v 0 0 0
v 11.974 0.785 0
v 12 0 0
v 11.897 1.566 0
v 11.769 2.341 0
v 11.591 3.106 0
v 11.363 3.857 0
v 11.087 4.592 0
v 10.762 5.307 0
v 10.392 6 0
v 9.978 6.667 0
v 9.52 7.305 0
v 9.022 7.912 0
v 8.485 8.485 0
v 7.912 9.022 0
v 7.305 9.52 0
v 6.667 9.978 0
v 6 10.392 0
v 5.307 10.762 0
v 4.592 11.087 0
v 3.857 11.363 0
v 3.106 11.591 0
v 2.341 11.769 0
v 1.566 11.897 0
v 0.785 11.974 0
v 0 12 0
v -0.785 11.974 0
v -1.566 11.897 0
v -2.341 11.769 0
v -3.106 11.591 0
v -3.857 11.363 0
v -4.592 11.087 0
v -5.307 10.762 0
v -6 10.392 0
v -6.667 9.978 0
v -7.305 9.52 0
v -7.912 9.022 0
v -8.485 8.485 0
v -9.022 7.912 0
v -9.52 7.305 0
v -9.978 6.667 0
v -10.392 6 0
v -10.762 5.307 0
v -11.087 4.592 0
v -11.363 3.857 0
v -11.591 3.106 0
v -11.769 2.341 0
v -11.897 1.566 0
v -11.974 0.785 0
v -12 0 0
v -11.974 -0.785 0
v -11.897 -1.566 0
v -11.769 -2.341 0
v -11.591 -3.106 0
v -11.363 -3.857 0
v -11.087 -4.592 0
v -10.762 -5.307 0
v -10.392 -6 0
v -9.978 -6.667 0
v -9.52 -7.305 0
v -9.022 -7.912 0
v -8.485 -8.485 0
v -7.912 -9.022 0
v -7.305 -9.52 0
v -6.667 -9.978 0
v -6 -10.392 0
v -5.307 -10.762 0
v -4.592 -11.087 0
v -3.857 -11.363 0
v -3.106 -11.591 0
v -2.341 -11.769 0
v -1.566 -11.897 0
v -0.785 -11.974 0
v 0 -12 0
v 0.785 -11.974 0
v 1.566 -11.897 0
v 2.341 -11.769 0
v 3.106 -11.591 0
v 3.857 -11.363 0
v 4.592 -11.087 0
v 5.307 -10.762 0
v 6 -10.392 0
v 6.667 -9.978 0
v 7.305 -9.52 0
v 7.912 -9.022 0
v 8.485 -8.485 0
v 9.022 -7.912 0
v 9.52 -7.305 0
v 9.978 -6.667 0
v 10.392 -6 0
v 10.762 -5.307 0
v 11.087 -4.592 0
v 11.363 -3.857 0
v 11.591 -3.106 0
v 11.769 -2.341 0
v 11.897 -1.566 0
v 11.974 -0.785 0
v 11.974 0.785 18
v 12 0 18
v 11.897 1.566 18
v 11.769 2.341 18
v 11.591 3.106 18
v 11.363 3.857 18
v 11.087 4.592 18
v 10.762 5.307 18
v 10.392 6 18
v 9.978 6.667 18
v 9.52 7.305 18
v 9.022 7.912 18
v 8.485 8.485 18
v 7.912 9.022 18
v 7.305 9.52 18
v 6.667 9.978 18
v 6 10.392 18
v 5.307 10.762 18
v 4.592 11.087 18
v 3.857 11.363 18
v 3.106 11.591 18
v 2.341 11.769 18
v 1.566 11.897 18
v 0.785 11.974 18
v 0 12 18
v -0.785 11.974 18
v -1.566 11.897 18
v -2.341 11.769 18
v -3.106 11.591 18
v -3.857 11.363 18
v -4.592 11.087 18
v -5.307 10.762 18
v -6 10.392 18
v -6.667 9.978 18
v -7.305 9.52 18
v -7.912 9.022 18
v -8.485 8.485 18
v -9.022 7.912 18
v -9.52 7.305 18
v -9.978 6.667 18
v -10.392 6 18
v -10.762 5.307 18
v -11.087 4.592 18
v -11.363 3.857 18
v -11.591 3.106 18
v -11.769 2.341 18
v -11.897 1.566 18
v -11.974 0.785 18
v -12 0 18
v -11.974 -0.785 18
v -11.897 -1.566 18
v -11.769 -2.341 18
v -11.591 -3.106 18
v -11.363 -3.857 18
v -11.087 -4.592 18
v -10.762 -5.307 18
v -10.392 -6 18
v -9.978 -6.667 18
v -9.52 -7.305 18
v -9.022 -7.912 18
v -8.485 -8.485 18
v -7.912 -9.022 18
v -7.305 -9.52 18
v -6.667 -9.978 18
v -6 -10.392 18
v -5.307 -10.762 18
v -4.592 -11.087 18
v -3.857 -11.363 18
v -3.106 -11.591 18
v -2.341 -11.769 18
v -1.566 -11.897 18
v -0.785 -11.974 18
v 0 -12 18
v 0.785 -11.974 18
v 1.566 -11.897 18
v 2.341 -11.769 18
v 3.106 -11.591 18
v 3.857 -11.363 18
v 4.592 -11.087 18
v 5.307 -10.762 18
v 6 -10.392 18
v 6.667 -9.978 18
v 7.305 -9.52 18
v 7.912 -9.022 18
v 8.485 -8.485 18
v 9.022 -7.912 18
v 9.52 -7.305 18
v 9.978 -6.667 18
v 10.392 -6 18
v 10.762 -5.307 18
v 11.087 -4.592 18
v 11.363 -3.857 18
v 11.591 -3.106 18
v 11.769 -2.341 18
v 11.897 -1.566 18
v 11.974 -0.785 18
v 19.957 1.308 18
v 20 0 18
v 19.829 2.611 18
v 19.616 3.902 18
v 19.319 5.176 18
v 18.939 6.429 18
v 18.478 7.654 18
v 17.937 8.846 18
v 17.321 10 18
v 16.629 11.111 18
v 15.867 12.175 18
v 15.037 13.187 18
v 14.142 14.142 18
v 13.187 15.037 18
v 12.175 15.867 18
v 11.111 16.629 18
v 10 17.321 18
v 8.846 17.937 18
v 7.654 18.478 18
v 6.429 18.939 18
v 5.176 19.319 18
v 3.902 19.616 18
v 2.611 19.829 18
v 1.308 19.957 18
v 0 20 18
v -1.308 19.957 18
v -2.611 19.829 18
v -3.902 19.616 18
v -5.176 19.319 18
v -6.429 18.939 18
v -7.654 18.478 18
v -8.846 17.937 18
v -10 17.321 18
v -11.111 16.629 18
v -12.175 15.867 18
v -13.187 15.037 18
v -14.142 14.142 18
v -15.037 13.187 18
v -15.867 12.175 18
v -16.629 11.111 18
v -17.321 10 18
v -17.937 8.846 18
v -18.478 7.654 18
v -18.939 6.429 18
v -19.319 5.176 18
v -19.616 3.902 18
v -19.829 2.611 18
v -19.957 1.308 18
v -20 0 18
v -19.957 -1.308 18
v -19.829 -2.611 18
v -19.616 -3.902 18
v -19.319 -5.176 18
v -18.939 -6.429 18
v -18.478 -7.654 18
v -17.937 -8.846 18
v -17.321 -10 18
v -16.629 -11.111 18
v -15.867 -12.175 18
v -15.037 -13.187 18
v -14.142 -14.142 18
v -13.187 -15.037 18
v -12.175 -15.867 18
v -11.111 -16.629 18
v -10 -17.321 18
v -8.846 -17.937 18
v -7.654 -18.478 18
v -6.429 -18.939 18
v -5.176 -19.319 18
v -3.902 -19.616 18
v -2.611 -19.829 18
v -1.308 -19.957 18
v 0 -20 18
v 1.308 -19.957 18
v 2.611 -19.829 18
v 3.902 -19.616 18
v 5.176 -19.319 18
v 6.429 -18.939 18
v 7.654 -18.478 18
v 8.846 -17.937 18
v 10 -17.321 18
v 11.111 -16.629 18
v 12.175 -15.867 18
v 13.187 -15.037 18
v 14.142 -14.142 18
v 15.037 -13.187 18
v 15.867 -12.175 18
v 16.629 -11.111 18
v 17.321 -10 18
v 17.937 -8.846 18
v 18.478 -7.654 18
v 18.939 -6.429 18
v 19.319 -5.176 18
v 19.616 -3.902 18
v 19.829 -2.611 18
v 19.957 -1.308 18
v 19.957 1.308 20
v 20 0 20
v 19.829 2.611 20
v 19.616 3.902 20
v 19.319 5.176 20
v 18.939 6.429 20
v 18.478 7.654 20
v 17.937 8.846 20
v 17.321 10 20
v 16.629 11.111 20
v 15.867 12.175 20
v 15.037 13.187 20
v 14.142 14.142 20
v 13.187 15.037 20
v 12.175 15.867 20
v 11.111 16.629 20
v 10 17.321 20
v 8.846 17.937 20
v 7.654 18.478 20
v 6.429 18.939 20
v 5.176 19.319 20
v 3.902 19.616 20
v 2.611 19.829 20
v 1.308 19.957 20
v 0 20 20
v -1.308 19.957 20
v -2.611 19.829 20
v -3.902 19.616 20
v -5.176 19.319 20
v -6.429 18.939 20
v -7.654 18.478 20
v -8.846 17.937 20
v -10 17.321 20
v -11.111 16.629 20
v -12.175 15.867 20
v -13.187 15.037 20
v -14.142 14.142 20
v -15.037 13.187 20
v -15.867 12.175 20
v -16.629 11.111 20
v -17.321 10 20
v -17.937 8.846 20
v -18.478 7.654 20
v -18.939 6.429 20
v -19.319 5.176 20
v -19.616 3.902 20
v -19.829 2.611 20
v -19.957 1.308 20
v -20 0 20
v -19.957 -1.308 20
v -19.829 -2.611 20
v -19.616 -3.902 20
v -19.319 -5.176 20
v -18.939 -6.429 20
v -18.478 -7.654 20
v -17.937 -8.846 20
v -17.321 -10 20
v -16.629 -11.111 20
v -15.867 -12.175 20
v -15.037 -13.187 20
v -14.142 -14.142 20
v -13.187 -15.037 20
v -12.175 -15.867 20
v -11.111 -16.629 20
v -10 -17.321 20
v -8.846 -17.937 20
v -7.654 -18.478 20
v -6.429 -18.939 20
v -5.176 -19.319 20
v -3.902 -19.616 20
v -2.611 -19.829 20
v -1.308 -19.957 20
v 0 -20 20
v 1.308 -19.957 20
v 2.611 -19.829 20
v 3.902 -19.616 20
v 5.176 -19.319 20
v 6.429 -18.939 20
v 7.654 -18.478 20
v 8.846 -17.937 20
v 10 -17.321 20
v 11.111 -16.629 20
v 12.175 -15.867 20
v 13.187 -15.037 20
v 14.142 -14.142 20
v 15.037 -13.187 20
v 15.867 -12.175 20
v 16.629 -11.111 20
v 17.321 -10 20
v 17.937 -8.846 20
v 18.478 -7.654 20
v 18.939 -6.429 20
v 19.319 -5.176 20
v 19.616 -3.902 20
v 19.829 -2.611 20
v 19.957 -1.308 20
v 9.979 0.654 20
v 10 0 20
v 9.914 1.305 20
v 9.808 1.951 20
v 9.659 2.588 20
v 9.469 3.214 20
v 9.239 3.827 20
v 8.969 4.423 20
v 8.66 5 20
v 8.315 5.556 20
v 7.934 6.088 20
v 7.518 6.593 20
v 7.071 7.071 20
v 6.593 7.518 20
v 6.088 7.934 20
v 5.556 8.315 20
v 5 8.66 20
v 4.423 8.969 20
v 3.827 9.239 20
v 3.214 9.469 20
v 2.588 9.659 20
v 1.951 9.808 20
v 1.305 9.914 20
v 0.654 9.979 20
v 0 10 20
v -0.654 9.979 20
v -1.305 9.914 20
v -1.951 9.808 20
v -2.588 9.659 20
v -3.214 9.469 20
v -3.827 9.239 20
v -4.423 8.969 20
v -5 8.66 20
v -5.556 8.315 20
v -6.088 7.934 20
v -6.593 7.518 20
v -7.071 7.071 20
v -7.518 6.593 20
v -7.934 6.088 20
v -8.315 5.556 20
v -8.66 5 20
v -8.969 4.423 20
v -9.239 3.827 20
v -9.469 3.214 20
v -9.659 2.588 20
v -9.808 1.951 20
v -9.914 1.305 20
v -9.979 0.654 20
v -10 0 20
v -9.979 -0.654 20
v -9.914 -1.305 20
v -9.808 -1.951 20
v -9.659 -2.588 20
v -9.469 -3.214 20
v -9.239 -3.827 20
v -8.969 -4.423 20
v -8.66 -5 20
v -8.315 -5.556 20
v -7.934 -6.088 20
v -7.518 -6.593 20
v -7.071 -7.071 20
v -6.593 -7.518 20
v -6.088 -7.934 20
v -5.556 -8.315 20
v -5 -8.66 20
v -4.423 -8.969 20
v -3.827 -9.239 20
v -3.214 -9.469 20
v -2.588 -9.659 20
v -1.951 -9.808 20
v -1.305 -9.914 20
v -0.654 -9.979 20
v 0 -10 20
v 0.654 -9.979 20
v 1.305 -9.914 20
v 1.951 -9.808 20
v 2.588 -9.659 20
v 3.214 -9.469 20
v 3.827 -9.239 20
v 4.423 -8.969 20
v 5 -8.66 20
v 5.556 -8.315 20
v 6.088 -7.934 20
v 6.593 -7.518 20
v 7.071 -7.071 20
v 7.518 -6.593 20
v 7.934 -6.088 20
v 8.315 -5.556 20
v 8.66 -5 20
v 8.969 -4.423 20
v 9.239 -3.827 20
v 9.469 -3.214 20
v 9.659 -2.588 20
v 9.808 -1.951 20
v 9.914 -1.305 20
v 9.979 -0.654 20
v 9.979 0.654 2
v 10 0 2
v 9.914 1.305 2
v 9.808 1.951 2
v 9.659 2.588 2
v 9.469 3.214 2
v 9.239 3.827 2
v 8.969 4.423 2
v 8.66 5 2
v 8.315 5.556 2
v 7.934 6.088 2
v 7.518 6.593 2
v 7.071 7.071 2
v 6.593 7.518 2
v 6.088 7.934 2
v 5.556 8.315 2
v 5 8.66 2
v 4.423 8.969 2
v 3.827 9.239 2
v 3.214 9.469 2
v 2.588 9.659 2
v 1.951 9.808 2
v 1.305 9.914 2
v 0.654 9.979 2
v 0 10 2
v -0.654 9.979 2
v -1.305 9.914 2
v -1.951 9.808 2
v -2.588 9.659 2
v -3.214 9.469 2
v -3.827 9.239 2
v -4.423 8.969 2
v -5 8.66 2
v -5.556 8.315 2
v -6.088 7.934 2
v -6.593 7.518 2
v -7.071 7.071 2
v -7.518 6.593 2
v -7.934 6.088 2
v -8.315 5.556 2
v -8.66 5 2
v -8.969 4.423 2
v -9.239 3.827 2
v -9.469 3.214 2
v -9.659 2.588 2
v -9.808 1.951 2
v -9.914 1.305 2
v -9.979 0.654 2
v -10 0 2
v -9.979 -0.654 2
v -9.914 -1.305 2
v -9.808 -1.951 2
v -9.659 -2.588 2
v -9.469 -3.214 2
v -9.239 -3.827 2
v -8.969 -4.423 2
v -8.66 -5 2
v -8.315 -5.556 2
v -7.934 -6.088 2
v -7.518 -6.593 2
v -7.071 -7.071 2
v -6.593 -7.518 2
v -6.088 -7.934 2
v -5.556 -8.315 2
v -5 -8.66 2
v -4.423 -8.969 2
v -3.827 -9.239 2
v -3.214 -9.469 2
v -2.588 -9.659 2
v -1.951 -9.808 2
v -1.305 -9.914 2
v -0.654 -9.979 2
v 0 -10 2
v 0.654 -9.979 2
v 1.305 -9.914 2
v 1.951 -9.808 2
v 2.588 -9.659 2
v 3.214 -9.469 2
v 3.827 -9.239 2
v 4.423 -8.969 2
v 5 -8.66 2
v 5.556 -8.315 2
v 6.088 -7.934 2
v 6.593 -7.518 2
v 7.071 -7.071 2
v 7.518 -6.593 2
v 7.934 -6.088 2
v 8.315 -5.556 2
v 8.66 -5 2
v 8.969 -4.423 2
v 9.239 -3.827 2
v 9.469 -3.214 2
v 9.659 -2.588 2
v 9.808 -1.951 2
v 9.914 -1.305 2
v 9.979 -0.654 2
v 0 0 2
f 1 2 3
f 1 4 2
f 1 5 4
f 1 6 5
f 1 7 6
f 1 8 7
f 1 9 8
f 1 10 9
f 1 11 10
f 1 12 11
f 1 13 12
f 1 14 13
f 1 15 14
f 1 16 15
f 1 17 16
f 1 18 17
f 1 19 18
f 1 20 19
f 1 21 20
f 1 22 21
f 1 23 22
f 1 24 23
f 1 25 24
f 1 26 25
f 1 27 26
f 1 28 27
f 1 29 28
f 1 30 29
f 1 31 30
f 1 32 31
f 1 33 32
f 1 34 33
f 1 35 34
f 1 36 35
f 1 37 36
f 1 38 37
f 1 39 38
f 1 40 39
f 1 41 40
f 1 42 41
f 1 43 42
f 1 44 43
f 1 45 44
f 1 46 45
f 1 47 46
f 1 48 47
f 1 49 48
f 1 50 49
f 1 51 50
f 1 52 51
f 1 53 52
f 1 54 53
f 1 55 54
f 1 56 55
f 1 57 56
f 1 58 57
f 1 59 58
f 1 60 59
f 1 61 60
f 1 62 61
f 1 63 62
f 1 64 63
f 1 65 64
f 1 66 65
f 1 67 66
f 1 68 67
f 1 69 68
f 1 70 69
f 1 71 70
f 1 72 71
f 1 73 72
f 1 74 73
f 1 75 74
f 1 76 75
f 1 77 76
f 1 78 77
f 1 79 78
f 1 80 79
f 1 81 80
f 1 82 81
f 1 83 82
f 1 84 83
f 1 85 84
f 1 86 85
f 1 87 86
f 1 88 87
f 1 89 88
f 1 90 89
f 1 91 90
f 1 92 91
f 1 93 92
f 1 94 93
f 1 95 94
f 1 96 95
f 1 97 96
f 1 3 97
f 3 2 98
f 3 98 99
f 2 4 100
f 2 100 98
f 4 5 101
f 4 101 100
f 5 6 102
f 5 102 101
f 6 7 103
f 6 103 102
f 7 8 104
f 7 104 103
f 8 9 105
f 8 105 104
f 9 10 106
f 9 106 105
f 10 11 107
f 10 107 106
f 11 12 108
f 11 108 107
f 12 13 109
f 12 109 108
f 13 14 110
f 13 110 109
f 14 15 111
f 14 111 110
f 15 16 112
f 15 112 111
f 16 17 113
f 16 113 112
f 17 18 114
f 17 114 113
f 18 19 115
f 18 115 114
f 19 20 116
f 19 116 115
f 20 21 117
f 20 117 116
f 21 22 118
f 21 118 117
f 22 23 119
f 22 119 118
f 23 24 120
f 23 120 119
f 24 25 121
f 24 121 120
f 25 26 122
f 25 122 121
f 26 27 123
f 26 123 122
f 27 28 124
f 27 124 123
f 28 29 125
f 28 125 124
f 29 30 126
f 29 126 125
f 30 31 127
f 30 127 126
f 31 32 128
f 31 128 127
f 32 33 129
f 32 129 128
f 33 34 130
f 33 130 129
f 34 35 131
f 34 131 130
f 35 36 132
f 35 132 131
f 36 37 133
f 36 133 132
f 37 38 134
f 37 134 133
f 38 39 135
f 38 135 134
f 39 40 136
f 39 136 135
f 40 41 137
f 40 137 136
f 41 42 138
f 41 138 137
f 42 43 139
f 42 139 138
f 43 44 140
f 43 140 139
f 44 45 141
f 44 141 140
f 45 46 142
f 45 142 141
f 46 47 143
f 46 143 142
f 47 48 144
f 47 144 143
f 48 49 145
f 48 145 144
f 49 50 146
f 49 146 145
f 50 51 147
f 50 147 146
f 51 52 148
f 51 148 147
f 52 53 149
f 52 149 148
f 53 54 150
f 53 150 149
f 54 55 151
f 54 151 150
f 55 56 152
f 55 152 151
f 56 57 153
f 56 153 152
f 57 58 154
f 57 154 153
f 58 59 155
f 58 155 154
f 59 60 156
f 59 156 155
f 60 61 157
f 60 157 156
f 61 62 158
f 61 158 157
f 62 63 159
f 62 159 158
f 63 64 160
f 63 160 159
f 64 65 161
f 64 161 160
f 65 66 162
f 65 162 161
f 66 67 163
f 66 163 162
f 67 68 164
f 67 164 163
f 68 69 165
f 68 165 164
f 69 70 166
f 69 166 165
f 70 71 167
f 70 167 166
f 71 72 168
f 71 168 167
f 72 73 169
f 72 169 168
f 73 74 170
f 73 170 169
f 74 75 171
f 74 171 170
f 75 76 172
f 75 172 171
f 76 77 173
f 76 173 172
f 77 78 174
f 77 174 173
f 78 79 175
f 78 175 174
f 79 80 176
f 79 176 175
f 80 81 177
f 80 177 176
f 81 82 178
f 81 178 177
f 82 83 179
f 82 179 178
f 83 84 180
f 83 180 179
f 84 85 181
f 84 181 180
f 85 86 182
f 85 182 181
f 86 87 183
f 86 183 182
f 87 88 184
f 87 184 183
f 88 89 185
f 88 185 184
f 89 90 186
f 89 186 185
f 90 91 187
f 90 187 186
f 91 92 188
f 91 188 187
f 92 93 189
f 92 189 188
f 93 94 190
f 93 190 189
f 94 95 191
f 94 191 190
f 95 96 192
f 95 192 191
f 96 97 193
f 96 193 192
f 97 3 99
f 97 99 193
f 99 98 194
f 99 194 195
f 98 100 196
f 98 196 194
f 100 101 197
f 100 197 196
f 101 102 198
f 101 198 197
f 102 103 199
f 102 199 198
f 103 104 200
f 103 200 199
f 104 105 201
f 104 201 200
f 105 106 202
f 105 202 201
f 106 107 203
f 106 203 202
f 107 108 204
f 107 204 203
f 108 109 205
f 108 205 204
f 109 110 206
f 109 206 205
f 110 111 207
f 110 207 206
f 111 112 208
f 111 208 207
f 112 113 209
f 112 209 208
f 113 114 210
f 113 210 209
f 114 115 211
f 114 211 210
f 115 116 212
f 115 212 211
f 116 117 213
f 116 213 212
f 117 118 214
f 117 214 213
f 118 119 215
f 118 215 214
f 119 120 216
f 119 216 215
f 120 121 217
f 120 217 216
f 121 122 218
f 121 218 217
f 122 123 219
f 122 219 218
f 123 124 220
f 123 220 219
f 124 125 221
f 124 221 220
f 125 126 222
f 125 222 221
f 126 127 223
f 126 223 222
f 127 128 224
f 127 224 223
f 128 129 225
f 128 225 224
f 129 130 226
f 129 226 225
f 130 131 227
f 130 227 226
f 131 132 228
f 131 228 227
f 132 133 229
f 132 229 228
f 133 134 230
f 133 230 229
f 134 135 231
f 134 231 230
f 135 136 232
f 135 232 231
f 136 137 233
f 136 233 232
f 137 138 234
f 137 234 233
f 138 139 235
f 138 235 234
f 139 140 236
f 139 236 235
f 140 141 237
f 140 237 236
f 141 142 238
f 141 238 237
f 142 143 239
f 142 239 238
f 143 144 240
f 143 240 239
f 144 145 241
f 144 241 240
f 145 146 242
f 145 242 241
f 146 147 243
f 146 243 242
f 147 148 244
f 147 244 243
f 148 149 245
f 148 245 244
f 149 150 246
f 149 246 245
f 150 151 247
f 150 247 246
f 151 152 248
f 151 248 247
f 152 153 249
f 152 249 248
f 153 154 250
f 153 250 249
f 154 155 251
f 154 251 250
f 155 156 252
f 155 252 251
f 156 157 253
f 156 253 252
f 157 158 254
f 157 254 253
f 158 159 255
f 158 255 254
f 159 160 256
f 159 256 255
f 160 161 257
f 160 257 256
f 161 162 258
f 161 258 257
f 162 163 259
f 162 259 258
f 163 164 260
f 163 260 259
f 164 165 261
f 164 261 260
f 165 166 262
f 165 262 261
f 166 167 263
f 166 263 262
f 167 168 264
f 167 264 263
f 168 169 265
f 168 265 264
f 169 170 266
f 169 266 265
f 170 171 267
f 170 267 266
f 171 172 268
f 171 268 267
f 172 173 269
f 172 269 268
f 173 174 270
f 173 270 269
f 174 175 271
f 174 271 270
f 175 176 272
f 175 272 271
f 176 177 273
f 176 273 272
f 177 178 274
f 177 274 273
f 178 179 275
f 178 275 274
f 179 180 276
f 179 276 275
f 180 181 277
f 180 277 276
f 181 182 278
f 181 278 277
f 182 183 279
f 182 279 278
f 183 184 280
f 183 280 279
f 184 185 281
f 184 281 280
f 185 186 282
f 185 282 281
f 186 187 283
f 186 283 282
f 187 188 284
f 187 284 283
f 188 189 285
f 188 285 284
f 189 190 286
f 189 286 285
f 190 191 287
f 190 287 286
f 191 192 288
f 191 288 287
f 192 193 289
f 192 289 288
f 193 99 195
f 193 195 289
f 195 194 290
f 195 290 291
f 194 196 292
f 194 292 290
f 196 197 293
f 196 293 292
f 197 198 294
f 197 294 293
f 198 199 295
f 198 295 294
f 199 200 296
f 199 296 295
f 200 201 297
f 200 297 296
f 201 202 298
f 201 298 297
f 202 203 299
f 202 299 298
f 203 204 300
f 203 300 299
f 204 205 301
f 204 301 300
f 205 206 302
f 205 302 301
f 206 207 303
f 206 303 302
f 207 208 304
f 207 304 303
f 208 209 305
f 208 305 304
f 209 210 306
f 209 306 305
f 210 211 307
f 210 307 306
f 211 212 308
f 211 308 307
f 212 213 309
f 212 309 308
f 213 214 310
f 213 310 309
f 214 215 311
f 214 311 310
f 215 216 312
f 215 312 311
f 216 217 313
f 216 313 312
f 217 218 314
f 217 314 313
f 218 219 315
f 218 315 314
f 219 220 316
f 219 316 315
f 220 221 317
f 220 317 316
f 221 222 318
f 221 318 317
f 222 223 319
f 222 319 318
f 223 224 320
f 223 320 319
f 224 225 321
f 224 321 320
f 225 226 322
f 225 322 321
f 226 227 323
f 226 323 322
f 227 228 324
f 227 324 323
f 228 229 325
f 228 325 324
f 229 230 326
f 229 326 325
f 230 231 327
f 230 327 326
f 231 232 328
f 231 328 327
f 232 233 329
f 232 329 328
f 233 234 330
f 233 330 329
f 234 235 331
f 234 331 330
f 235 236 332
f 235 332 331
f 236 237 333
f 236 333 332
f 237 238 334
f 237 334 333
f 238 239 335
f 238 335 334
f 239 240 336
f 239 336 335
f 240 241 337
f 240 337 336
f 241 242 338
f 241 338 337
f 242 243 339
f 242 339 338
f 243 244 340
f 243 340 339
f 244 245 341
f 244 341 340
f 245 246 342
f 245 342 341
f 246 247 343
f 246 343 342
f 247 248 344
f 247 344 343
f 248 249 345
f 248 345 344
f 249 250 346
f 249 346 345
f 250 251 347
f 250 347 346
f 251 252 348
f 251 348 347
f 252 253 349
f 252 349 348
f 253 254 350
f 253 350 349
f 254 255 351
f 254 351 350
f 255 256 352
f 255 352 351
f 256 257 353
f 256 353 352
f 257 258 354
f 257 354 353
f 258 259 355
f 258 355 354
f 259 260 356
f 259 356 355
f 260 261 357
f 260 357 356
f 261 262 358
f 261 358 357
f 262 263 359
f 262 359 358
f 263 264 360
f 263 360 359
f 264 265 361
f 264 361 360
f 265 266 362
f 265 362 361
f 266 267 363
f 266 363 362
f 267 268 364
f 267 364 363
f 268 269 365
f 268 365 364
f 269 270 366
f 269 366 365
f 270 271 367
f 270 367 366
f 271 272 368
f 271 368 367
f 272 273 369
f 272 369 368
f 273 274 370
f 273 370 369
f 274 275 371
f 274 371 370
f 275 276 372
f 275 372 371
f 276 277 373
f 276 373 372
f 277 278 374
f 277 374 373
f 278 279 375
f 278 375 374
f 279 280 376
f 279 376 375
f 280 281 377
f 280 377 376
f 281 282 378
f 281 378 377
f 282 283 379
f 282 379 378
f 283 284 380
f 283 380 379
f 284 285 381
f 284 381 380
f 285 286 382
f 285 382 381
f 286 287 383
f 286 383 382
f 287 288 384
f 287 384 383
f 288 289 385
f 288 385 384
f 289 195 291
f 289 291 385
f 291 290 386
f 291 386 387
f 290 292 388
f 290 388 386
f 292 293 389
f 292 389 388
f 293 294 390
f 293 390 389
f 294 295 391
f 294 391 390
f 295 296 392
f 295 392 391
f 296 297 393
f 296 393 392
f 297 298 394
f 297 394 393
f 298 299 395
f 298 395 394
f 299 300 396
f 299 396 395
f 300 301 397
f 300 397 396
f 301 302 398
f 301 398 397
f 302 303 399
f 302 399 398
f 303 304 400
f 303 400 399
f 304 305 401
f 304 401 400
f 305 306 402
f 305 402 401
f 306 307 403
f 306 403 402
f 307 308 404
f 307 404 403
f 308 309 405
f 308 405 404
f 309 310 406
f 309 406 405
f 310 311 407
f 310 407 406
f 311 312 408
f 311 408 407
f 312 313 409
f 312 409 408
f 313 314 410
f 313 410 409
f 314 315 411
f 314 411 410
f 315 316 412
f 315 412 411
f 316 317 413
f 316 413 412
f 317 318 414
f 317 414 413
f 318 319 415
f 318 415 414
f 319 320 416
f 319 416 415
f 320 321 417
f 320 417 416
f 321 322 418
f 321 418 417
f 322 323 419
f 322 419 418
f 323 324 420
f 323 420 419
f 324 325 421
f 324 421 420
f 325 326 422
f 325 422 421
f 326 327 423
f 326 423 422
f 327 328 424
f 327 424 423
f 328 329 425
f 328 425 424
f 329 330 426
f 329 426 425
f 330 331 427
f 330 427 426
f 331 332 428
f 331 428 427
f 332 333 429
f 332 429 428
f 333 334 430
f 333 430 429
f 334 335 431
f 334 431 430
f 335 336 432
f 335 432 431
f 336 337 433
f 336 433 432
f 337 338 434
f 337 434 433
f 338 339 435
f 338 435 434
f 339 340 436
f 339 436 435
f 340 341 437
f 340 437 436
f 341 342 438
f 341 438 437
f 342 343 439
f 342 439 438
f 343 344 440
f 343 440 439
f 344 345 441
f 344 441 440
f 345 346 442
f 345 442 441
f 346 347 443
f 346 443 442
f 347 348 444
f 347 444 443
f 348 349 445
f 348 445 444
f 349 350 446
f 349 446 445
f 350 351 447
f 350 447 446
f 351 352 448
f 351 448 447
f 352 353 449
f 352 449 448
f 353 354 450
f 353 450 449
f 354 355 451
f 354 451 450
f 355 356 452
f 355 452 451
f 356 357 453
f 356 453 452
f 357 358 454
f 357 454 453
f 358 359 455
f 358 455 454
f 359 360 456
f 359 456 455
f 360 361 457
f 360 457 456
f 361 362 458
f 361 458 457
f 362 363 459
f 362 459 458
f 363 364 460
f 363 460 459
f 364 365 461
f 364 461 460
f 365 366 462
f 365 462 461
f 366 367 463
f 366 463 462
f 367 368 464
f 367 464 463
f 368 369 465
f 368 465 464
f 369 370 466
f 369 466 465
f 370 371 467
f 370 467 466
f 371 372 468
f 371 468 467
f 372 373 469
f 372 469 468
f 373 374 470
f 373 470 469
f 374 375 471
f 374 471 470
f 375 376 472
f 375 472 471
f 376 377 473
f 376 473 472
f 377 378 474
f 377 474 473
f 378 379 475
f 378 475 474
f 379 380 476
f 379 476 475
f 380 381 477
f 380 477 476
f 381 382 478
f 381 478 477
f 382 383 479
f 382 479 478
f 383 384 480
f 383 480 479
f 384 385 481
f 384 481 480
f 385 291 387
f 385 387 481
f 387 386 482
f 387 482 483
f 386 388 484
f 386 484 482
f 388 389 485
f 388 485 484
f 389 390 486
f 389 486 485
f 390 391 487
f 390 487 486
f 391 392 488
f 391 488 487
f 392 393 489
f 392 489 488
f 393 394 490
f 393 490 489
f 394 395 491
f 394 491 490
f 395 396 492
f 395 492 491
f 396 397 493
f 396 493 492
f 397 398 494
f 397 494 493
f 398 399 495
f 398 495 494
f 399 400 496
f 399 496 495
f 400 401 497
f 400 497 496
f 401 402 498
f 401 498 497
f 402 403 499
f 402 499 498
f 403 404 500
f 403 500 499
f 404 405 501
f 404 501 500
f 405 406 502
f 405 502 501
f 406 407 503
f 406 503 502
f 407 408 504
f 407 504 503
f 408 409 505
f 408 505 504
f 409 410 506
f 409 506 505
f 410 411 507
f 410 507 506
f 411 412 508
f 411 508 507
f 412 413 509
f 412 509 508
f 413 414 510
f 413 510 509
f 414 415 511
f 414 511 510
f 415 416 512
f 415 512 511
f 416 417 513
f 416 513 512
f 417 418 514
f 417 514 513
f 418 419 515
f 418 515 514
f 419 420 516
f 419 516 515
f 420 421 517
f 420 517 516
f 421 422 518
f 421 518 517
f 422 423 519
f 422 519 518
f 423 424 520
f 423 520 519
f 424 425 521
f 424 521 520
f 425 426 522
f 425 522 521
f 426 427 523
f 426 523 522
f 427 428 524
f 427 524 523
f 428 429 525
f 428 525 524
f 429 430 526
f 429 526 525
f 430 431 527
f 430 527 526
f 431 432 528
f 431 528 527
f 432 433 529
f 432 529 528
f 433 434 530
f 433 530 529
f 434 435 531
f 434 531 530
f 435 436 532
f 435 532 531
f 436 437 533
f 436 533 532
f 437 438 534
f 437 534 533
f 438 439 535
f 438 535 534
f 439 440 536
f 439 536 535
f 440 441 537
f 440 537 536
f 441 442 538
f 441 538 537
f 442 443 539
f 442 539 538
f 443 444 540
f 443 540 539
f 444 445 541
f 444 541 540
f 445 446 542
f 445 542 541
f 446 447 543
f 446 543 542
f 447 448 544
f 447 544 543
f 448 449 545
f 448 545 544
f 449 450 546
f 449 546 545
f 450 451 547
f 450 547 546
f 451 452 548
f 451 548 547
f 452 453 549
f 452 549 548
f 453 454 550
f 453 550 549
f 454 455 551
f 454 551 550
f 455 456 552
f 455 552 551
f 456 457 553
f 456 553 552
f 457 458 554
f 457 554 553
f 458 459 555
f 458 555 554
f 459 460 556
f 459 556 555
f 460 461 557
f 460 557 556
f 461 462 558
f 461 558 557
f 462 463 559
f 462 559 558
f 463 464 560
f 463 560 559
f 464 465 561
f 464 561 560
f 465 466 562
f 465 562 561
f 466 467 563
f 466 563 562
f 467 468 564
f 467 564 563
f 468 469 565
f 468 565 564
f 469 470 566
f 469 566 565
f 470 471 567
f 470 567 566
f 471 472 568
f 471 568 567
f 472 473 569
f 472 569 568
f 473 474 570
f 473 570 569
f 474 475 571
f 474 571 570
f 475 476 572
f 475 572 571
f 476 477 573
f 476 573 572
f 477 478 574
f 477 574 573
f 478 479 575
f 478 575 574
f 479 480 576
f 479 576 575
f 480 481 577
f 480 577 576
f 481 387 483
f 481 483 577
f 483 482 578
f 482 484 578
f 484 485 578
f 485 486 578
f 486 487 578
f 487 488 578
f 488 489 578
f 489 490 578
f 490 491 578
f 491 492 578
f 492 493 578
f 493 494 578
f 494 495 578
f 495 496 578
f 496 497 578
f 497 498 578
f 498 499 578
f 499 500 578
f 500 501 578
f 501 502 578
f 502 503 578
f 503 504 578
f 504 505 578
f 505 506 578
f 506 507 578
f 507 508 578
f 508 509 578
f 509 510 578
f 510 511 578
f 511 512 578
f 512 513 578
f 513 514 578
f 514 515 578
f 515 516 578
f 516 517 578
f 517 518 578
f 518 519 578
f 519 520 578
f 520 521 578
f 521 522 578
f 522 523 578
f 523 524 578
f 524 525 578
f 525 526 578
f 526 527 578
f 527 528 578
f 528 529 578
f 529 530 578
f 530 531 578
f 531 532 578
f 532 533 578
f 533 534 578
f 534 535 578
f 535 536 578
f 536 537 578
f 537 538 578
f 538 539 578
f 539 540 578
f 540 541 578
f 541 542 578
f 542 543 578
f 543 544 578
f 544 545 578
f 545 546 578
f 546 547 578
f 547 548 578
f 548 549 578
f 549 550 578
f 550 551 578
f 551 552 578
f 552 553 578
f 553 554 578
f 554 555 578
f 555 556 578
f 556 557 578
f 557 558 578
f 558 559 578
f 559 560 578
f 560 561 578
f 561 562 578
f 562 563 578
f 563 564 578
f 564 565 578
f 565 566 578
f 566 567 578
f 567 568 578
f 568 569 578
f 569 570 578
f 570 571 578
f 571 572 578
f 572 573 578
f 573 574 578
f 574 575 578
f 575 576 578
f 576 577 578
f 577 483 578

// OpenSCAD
// Original MechIntel educational model. CC0-1.0. Units: mm.
// Not a standardized or load-rated component.
$fn=96;
// Section points: [radius, height], mm. Edit to change the profile.
section=[[0, 0], [12, 0], [12, 18], [20, 18], [20, 20], [10, 20], [10, 2], [0, 2]];
rotate_extrude($fn=96) polygon(points=section);
